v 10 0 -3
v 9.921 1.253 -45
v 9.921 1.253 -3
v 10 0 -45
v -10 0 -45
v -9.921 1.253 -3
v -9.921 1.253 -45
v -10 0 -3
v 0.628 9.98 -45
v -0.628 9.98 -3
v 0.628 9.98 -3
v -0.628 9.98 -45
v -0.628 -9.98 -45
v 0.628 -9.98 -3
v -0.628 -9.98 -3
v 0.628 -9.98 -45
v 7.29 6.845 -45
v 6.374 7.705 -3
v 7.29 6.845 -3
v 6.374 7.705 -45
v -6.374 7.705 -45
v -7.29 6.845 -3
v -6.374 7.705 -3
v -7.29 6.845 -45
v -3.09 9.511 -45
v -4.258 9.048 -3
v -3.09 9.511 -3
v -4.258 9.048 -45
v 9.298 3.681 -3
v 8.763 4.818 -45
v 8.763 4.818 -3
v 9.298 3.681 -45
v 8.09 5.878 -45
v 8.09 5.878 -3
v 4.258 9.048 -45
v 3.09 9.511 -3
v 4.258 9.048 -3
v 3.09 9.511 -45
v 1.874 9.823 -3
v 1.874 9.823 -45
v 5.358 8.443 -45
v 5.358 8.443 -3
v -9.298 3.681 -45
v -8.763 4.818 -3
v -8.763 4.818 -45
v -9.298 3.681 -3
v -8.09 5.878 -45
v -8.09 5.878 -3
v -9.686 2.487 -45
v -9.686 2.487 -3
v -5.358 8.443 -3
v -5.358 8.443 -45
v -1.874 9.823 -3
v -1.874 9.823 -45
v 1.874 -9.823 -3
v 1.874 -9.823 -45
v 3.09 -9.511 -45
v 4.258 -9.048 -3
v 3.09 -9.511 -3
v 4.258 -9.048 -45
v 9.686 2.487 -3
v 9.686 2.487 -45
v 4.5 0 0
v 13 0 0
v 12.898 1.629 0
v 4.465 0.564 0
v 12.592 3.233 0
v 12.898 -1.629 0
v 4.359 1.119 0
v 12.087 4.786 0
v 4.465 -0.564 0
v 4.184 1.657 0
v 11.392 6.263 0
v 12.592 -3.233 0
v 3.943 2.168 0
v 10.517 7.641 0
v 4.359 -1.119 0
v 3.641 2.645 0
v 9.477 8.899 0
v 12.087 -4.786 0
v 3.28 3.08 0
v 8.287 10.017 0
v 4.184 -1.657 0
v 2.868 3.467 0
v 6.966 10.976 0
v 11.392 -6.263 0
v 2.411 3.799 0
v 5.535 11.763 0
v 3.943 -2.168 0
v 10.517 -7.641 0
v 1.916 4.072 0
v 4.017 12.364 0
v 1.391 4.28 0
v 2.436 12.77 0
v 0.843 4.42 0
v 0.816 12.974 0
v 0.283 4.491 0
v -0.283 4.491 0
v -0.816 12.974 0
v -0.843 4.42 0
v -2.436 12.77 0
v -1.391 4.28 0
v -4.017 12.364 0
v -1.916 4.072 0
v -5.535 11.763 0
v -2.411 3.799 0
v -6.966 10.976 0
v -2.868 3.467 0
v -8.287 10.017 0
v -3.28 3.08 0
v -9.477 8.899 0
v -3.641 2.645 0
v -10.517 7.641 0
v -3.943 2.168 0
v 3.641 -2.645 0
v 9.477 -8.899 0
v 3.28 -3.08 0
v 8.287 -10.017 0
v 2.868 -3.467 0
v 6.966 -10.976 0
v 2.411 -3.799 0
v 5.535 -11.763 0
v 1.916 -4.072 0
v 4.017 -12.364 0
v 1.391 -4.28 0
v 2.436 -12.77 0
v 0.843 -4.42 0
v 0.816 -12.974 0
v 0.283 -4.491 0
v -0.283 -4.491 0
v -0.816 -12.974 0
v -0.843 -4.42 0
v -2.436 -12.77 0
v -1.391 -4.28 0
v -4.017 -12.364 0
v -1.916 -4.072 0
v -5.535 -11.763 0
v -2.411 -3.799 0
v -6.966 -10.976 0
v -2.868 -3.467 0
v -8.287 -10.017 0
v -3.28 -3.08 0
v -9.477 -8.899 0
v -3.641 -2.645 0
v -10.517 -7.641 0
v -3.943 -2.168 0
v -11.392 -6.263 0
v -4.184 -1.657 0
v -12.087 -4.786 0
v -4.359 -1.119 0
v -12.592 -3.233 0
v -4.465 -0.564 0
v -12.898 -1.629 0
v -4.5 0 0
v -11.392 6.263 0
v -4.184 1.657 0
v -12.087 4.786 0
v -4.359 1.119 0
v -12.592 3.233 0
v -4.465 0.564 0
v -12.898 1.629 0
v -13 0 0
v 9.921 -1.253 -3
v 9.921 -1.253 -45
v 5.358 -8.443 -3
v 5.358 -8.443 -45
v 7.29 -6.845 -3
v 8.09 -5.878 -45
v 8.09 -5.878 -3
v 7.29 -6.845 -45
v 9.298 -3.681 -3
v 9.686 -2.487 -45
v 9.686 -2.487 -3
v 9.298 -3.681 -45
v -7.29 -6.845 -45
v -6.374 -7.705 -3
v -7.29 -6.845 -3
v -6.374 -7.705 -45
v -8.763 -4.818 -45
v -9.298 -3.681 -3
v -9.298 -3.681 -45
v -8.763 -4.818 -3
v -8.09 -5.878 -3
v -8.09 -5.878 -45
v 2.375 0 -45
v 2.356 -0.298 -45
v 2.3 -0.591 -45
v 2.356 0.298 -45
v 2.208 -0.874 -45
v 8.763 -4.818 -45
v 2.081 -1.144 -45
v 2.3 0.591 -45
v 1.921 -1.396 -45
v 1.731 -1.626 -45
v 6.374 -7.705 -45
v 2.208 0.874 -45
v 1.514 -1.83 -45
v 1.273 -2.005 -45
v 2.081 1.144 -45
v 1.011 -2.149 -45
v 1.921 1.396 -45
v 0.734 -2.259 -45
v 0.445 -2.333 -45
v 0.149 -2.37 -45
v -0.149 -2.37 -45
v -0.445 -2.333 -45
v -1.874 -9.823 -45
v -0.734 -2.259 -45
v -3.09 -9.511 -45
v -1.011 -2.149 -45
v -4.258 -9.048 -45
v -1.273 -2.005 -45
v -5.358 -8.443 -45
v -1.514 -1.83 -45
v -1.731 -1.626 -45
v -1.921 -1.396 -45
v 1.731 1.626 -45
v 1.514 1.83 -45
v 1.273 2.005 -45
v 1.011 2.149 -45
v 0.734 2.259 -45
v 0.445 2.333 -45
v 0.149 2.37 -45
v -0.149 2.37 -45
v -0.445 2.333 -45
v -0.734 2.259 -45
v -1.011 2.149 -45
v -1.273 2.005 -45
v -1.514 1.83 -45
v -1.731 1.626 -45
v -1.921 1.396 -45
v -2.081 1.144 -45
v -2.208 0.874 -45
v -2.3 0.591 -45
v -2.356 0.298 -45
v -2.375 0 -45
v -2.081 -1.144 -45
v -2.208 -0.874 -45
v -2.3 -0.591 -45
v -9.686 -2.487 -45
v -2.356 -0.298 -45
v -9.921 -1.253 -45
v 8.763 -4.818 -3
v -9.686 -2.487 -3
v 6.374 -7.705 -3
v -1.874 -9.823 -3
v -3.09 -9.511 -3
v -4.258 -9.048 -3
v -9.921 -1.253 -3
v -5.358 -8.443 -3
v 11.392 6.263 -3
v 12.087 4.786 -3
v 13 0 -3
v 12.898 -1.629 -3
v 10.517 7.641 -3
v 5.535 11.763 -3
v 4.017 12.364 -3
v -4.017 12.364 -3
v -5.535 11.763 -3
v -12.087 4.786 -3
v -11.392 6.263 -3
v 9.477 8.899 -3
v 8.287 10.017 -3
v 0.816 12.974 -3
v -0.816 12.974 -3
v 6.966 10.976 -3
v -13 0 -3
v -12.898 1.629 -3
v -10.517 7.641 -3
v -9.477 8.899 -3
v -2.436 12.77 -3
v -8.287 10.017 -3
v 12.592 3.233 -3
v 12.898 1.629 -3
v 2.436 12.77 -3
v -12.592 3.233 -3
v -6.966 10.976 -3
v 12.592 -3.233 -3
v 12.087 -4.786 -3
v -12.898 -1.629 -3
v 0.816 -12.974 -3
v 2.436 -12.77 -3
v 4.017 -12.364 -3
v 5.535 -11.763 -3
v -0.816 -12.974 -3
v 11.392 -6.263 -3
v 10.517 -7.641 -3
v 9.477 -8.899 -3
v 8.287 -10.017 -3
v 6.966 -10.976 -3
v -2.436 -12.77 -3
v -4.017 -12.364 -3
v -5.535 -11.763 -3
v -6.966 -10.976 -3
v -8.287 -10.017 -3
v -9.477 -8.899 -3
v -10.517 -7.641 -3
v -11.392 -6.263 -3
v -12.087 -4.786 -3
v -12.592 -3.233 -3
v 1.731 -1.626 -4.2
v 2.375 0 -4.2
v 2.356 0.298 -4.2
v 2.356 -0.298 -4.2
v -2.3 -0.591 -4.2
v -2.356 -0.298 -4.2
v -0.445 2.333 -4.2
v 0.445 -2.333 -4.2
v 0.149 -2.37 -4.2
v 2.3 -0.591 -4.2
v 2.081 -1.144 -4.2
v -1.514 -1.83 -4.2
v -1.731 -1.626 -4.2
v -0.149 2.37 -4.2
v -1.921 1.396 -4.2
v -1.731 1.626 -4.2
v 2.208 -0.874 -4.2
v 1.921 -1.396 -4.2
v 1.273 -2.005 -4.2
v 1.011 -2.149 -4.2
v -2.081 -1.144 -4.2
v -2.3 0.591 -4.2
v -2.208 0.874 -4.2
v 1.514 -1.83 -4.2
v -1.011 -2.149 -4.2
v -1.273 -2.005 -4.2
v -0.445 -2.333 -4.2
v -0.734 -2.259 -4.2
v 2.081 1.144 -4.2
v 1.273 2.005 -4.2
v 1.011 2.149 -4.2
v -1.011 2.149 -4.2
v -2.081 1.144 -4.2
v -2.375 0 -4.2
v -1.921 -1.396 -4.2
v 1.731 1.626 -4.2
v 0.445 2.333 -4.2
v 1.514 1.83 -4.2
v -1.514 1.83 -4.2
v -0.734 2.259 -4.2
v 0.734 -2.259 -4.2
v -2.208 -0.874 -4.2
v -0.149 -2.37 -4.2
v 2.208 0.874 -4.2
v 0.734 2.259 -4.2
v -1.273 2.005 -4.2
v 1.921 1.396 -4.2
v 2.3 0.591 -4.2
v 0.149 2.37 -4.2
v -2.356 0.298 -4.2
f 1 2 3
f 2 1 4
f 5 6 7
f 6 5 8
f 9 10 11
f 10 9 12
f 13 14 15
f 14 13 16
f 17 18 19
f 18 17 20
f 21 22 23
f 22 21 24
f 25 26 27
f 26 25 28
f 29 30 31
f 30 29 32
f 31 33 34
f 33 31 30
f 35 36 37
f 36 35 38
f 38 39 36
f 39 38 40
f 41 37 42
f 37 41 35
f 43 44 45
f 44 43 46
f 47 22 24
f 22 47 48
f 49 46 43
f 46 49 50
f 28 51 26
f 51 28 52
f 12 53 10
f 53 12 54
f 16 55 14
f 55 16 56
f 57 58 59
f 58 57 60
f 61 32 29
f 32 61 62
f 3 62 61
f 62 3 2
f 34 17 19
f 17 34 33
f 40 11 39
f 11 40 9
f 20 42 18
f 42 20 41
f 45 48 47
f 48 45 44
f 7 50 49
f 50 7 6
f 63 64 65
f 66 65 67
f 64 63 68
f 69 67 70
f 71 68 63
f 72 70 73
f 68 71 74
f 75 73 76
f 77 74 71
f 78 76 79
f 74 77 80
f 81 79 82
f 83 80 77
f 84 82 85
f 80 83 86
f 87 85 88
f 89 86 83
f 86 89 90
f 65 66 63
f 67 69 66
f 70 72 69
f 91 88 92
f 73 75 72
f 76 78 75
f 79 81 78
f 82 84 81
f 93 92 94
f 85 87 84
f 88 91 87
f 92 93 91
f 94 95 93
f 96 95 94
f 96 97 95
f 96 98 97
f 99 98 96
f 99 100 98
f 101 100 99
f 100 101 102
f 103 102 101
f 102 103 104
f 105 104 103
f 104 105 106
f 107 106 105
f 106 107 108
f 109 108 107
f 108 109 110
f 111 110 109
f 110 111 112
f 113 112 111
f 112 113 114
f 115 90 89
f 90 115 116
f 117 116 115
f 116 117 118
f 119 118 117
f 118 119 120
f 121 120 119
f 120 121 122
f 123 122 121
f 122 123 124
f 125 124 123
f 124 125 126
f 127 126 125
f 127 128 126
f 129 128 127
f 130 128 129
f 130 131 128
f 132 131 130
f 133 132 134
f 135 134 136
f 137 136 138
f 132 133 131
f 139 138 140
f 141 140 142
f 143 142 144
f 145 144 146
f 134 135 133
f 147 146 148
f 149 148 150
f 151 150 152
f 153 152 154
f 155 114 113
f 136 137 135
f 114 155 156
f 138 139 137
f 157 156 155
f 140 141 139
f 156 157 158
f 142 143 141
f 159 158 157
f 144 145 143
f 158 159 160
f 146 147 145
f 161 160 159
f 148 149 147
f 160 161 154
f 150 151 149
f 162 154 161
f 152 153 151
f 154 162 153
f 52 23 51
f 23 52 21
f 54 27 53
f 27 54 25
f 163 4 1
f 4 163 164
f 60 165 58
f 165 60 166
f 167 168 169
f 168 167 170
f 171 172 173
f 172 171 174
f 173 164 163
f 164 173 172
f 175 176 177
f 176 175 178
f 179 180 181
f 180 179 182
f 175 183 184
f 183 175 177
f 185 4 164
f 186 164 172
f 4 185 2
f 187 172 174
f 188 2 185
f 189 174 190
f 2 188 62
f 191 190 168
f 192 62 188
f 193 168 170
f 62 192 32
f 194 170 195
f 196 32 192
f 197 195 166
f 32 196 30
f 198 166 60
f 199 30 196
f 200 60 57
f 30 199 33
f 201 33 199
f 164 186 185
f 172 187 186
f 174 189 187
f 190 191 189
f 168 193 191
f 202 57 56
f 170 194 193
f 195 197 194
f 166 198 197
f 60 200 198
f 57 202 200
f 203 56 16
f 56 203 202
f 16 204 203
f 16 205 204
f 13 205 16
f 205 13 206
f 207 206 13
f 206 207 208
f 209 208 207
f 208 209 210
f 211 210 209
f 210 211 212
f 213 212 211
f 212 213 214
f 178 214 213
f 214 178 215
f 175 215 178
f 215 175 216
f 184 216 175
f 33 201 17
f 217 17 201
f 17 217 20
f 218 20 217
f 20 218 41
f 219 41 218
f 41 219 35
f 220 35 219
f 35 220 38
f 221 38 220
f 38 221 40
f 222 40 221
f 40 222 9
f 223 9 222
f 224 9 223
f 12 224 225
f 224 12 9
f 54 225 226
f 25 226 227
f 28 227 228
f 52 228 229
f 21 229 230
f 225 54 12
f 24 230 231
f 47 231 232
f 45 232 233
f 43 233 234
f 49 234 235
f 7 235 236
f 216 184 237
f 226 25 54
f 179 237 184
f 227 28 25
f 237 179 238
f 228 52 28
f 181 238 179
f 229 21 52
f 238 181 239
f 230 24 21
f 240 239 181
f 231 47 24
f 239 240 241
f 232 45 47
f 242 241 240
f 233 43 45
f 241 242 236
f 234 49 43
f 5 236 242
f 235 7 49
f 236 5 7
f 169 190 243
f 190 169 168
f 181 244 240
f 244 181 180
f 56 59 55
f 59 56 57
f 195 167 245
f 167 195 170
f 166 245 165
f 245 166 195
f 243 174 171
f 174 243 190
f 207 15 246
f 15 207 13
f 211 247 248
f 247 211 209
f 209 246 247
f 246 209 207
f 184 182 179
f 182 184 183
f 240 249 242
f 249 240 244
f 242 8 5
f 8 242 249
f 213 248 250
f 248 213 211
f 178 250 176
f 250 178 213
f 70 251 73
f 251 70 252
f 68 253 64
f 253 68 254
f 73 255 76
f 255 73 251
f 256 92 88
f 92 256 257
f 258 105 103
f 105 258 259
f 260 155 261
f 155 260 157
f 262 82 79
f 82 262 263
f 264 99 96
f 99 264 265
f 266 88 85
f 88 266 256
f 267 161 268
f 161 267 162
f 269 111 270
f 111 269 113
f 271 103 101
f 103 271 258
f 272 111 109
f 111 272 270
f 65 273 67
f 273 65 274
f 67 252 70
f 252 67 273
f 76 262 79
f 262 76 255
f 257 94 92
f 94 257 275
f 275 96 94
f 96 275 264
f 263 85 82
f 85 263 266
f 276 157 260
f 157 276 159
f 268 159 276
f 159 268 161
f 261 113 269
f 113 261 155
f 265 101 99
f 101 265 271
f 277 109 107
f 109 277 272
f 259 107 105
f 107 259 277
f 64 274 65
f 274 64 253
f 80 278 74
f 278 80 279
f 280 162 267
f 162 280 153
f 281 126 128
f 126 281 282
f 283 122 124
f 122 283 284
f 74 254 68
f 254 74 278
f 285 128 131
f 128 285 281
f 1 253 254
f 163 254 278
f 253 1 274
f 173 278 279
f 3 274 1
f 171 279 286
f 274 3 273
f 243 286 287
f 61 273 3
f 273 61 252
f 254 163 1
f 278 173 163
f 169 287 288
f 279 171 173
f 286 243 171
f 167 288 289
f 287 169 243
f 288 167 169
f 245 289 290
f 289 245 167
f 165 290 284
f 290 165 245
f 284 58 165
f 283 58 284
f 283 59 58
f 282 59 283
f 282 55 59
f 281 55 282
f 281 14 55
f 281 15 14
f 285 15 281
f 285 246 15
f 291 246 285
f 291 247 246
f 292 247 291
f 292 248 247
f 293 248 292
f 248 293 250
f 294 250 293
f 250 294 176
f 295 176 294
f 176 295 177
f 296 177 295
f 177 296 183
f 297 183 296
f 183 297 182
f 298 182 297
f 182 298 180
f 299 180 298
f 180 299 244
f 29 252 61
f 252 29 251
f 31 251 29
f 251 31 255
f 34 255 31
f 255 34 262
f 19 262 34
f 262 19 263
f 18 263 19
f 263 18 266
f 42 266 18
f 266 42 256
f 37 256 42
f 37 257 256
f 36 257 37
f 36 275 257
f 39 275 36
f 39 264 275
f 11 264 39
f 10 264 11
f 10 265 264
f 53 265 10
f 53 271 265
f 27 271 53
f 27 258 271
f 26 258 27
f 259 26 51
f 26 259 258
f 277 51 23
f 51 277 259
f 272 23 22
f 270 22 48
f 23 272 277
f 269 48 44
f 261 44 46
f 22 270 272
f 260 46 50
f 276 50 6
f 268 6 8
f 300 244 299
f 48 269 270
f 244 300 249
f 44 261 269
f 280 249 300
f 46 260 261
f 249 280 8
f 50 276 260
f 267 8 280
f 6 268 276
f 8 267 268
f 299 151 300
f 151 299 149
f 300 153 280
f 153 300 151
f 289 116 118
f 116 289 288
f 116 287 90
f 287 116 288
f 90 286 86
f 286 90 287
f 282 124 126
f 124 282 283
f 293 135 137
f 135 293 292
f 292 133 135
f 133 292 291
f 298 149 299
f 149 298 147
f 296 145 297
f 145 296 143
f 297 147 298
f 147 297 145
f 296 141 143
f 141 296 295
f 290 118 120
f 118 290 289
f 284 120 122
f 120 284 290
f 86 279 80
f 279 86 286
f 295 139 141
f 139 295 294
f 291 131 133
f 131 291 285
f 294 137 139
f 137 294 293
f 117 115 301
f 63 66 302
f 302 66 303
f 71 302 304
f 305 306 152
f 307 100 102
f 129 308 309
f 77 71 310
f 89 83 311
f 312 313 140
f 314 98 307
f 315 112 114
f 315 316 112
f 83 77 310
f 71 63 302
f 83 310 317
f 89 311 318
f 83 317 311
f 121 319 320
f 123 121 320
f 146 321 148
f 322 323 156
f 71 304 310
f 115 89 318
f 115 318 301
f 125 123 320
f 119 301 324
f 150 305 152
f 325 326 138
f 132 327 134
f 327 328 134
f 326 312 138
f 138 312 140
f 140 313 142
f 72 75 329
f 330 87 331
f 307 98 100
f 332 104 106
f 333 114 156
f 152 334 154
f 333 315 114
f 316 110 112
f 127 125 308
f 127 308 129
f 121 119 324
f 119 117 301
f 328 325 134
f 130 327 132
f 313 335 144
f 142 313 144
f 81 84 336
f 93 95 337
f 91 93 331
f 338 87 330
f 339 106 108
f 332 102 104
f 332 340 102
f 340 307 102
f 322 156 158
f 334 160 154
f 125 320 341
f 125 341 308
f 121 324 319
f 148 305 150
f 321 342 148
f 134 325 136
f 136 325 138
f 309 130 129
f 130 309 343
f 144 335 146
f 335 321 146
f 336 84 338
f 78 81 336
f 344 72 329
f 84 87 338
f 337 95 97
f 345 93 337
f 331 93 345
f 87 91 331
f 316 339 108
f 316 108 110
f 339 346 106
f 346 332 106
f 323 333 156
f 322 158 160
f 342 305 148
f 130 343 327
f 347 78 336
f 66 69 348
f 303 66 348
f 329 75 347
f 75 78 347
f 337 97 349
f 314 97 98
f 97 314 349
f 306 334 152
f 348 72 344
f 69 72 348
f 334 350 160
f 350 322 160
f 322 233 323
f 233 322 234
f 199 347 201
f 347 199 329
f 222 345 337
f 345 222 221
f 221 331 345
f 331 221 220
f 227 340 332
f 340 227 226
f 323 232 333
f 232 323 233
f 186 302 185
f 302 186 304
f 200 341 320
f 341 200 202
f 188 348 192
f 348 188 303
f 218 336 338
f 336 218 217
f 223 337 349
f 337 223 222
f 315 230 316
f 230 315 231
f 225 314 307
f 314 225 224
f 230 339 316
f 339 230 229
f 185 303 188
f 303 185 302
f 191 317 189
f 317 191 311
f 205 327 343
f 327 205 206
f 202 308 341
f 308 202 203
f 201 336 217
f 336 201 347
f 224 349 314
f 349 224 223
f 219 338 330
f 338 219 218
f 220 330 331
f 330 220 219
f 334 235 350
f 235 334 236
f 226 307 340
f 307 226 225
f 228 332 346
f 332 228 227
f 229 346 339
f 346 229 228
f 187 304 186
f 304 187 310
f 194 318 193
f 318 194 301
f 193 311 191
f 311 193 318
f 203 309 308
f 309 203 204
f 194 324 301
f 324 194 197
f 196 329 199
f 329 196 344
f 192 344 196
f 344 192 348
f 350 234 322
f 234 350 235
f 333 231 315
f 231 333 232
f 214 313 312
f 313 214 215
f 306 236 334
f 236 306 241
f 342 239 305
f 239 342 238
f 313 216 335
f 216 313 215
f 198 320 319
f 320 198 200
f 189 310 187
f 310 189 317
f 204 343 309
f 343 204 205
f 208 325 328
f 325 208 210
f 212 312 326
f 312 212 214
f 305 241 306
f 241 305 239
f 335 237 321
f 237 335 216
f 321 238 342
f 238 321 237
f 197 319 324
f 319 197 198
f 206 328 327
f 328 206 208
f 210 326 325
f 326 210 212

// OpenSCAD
$fn = 50;


difference() {
	union() {
		translate(v = [0, 0, -45.0000000000]) {
			cylinder(h = 45, r = 10.0000000000);
		}
		translate(v = [0, 0, -3.0000000000]) {
			cylinder(h = 3, r = 13.0000000000);
		}
	}
	union() {
		translate(v = [0, 0, 0]) {
			rotate(a = [0, 0, 0]) {
				difference() {
					union() {
						#translate(v = [0, 0, -45.0000000000]) {
							cylinder(h = 45, r = 2.2500000000);
						}
						#translate(v = [0, 0, -4.2000000000]) {
							cylinder(h = 4.2000000000, r1 = 2.3750000000, r2 = 4.5000000000);
						}
						#translate(v = [0, 0, -45.0000000000]) {
							cylinder(h = 45, r = 2.3750000000);
						}
						#translate(v = [0, 0, -45.0000000000]) {
							cylinder(h = 45, r = 2.2500000000);
						}
					}
					union();
				}
			}
		}
	}
}
